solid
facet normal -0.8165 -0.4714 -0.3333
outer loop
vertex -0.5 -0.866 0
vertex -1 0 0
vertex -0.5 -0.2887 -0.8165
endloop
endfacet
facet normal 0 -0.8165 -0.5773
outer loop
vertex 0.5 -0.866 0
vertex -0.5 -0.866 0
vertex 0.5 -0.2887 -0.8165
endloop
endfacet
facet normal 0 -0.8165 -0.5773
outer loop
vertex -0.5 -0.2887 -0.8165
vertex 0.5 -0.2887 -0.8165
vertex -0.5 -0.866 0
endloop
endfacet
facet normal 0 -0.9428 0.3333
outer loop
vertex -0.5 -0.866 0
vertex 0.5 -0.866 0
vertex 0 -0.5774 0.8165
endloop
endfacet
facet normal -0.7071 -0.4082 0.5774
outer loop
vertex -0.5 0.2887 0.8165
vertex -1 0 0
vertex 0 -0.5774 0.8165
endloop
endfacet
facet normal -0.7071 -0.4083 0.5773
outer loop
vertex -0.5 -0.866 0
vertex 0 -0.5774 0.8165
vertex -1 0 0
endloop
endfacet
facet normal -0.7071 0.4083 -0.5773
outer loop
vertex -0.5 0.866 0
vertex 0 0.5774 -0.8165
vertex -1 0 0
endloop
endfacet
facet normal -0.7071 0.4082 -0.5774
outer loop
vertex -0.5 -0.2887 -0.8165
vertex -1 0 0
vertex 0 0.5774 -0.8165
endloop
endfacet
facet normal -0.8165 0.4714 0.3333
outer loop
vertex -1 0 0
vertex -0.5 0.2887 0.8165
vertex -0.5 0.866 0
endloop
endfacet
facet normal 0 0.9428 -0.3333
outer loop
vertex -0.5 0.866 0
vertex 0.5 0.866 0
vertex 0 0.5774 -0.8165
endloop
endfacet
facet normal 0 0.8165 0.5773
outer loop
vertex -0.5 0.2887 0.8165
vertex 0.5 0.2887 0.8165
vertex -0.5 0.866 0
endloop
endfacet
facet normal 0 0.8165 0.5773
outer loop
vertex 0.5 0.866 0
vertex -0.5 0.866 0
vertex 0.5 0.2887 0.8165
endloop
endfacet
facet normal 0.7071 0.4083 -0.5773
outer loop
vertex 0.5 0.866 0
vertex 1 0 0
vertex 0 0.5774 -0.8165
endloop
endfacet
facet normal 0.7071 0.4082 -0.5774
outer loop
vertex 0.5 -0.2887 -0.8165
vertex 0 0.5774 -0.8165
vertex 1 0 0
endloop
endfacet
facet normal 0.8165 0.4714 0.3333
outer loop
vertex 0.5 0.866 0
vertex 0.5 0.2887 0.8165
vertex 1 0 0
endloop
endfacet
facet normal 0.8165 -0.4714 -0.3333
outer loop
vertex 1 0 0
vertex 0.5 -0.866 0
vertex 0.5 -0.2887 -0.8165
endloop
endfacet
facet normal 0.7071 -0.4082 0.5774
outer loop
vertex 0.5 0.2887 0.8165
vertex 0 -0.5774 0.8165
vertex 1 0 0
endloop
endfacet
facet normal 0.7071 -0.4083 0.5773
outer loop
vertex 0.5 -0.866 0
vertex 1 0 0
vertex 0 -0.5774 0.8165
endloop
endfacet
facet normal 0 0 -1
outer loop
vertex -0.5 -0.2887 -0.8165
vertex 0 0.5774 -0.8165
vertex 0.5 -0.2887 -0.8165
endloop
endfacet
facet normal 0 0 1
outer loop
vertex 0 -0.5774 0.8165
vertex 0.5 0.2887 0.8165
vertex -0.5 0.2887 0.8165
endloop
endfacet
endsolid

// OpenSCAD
polyhedron( points = [[-0.499999999813365, -0.866025403775453, -9.25185853683226e-18], [-0.999999999746834, 1.34738886689644e-11, -9.25185853683226e-18], [-0.500000000046654, 0.866025403757503, -9.25185853683226e-18], [0.499999999612915, 0.866025403757503, -9.25185853683226e-18], [0.999999999624149, 1.34758870704084e-11, -9.25185853683226e-18], [0.500000000001731, -0.866025403775453, -9.25185853683226e-18], [-0.499999999768469, -0.288675134507029, -0.816496580730204], [1.71945790907028e-10, 0.577350268904821, -0.816496580730204], [0.499999999967169, -0.288675134501062, -0.816496580738643], [1.20103815759439e-10, -0.577350269087394, 0.816496580730204], [0.499999999645778, 0.288675134563908, 0.816496580730204], [-0.499999999768468, 0.288675134635708, 0.816496580738643]], faces = [[0, 1, 6], [0, 6, 8, 5], [0, 5, 9], [0, 9, 11, 1], [1, 2, 7, 6], [1, 11, 2], [2, 3, 7], [2, 11, 10, 3], [3, 4, 8, 7], [3, 10, 4], [4, 5, 8], [4, 10, 9, 5], [6, 7, 8], [9, 10, 11]]);
